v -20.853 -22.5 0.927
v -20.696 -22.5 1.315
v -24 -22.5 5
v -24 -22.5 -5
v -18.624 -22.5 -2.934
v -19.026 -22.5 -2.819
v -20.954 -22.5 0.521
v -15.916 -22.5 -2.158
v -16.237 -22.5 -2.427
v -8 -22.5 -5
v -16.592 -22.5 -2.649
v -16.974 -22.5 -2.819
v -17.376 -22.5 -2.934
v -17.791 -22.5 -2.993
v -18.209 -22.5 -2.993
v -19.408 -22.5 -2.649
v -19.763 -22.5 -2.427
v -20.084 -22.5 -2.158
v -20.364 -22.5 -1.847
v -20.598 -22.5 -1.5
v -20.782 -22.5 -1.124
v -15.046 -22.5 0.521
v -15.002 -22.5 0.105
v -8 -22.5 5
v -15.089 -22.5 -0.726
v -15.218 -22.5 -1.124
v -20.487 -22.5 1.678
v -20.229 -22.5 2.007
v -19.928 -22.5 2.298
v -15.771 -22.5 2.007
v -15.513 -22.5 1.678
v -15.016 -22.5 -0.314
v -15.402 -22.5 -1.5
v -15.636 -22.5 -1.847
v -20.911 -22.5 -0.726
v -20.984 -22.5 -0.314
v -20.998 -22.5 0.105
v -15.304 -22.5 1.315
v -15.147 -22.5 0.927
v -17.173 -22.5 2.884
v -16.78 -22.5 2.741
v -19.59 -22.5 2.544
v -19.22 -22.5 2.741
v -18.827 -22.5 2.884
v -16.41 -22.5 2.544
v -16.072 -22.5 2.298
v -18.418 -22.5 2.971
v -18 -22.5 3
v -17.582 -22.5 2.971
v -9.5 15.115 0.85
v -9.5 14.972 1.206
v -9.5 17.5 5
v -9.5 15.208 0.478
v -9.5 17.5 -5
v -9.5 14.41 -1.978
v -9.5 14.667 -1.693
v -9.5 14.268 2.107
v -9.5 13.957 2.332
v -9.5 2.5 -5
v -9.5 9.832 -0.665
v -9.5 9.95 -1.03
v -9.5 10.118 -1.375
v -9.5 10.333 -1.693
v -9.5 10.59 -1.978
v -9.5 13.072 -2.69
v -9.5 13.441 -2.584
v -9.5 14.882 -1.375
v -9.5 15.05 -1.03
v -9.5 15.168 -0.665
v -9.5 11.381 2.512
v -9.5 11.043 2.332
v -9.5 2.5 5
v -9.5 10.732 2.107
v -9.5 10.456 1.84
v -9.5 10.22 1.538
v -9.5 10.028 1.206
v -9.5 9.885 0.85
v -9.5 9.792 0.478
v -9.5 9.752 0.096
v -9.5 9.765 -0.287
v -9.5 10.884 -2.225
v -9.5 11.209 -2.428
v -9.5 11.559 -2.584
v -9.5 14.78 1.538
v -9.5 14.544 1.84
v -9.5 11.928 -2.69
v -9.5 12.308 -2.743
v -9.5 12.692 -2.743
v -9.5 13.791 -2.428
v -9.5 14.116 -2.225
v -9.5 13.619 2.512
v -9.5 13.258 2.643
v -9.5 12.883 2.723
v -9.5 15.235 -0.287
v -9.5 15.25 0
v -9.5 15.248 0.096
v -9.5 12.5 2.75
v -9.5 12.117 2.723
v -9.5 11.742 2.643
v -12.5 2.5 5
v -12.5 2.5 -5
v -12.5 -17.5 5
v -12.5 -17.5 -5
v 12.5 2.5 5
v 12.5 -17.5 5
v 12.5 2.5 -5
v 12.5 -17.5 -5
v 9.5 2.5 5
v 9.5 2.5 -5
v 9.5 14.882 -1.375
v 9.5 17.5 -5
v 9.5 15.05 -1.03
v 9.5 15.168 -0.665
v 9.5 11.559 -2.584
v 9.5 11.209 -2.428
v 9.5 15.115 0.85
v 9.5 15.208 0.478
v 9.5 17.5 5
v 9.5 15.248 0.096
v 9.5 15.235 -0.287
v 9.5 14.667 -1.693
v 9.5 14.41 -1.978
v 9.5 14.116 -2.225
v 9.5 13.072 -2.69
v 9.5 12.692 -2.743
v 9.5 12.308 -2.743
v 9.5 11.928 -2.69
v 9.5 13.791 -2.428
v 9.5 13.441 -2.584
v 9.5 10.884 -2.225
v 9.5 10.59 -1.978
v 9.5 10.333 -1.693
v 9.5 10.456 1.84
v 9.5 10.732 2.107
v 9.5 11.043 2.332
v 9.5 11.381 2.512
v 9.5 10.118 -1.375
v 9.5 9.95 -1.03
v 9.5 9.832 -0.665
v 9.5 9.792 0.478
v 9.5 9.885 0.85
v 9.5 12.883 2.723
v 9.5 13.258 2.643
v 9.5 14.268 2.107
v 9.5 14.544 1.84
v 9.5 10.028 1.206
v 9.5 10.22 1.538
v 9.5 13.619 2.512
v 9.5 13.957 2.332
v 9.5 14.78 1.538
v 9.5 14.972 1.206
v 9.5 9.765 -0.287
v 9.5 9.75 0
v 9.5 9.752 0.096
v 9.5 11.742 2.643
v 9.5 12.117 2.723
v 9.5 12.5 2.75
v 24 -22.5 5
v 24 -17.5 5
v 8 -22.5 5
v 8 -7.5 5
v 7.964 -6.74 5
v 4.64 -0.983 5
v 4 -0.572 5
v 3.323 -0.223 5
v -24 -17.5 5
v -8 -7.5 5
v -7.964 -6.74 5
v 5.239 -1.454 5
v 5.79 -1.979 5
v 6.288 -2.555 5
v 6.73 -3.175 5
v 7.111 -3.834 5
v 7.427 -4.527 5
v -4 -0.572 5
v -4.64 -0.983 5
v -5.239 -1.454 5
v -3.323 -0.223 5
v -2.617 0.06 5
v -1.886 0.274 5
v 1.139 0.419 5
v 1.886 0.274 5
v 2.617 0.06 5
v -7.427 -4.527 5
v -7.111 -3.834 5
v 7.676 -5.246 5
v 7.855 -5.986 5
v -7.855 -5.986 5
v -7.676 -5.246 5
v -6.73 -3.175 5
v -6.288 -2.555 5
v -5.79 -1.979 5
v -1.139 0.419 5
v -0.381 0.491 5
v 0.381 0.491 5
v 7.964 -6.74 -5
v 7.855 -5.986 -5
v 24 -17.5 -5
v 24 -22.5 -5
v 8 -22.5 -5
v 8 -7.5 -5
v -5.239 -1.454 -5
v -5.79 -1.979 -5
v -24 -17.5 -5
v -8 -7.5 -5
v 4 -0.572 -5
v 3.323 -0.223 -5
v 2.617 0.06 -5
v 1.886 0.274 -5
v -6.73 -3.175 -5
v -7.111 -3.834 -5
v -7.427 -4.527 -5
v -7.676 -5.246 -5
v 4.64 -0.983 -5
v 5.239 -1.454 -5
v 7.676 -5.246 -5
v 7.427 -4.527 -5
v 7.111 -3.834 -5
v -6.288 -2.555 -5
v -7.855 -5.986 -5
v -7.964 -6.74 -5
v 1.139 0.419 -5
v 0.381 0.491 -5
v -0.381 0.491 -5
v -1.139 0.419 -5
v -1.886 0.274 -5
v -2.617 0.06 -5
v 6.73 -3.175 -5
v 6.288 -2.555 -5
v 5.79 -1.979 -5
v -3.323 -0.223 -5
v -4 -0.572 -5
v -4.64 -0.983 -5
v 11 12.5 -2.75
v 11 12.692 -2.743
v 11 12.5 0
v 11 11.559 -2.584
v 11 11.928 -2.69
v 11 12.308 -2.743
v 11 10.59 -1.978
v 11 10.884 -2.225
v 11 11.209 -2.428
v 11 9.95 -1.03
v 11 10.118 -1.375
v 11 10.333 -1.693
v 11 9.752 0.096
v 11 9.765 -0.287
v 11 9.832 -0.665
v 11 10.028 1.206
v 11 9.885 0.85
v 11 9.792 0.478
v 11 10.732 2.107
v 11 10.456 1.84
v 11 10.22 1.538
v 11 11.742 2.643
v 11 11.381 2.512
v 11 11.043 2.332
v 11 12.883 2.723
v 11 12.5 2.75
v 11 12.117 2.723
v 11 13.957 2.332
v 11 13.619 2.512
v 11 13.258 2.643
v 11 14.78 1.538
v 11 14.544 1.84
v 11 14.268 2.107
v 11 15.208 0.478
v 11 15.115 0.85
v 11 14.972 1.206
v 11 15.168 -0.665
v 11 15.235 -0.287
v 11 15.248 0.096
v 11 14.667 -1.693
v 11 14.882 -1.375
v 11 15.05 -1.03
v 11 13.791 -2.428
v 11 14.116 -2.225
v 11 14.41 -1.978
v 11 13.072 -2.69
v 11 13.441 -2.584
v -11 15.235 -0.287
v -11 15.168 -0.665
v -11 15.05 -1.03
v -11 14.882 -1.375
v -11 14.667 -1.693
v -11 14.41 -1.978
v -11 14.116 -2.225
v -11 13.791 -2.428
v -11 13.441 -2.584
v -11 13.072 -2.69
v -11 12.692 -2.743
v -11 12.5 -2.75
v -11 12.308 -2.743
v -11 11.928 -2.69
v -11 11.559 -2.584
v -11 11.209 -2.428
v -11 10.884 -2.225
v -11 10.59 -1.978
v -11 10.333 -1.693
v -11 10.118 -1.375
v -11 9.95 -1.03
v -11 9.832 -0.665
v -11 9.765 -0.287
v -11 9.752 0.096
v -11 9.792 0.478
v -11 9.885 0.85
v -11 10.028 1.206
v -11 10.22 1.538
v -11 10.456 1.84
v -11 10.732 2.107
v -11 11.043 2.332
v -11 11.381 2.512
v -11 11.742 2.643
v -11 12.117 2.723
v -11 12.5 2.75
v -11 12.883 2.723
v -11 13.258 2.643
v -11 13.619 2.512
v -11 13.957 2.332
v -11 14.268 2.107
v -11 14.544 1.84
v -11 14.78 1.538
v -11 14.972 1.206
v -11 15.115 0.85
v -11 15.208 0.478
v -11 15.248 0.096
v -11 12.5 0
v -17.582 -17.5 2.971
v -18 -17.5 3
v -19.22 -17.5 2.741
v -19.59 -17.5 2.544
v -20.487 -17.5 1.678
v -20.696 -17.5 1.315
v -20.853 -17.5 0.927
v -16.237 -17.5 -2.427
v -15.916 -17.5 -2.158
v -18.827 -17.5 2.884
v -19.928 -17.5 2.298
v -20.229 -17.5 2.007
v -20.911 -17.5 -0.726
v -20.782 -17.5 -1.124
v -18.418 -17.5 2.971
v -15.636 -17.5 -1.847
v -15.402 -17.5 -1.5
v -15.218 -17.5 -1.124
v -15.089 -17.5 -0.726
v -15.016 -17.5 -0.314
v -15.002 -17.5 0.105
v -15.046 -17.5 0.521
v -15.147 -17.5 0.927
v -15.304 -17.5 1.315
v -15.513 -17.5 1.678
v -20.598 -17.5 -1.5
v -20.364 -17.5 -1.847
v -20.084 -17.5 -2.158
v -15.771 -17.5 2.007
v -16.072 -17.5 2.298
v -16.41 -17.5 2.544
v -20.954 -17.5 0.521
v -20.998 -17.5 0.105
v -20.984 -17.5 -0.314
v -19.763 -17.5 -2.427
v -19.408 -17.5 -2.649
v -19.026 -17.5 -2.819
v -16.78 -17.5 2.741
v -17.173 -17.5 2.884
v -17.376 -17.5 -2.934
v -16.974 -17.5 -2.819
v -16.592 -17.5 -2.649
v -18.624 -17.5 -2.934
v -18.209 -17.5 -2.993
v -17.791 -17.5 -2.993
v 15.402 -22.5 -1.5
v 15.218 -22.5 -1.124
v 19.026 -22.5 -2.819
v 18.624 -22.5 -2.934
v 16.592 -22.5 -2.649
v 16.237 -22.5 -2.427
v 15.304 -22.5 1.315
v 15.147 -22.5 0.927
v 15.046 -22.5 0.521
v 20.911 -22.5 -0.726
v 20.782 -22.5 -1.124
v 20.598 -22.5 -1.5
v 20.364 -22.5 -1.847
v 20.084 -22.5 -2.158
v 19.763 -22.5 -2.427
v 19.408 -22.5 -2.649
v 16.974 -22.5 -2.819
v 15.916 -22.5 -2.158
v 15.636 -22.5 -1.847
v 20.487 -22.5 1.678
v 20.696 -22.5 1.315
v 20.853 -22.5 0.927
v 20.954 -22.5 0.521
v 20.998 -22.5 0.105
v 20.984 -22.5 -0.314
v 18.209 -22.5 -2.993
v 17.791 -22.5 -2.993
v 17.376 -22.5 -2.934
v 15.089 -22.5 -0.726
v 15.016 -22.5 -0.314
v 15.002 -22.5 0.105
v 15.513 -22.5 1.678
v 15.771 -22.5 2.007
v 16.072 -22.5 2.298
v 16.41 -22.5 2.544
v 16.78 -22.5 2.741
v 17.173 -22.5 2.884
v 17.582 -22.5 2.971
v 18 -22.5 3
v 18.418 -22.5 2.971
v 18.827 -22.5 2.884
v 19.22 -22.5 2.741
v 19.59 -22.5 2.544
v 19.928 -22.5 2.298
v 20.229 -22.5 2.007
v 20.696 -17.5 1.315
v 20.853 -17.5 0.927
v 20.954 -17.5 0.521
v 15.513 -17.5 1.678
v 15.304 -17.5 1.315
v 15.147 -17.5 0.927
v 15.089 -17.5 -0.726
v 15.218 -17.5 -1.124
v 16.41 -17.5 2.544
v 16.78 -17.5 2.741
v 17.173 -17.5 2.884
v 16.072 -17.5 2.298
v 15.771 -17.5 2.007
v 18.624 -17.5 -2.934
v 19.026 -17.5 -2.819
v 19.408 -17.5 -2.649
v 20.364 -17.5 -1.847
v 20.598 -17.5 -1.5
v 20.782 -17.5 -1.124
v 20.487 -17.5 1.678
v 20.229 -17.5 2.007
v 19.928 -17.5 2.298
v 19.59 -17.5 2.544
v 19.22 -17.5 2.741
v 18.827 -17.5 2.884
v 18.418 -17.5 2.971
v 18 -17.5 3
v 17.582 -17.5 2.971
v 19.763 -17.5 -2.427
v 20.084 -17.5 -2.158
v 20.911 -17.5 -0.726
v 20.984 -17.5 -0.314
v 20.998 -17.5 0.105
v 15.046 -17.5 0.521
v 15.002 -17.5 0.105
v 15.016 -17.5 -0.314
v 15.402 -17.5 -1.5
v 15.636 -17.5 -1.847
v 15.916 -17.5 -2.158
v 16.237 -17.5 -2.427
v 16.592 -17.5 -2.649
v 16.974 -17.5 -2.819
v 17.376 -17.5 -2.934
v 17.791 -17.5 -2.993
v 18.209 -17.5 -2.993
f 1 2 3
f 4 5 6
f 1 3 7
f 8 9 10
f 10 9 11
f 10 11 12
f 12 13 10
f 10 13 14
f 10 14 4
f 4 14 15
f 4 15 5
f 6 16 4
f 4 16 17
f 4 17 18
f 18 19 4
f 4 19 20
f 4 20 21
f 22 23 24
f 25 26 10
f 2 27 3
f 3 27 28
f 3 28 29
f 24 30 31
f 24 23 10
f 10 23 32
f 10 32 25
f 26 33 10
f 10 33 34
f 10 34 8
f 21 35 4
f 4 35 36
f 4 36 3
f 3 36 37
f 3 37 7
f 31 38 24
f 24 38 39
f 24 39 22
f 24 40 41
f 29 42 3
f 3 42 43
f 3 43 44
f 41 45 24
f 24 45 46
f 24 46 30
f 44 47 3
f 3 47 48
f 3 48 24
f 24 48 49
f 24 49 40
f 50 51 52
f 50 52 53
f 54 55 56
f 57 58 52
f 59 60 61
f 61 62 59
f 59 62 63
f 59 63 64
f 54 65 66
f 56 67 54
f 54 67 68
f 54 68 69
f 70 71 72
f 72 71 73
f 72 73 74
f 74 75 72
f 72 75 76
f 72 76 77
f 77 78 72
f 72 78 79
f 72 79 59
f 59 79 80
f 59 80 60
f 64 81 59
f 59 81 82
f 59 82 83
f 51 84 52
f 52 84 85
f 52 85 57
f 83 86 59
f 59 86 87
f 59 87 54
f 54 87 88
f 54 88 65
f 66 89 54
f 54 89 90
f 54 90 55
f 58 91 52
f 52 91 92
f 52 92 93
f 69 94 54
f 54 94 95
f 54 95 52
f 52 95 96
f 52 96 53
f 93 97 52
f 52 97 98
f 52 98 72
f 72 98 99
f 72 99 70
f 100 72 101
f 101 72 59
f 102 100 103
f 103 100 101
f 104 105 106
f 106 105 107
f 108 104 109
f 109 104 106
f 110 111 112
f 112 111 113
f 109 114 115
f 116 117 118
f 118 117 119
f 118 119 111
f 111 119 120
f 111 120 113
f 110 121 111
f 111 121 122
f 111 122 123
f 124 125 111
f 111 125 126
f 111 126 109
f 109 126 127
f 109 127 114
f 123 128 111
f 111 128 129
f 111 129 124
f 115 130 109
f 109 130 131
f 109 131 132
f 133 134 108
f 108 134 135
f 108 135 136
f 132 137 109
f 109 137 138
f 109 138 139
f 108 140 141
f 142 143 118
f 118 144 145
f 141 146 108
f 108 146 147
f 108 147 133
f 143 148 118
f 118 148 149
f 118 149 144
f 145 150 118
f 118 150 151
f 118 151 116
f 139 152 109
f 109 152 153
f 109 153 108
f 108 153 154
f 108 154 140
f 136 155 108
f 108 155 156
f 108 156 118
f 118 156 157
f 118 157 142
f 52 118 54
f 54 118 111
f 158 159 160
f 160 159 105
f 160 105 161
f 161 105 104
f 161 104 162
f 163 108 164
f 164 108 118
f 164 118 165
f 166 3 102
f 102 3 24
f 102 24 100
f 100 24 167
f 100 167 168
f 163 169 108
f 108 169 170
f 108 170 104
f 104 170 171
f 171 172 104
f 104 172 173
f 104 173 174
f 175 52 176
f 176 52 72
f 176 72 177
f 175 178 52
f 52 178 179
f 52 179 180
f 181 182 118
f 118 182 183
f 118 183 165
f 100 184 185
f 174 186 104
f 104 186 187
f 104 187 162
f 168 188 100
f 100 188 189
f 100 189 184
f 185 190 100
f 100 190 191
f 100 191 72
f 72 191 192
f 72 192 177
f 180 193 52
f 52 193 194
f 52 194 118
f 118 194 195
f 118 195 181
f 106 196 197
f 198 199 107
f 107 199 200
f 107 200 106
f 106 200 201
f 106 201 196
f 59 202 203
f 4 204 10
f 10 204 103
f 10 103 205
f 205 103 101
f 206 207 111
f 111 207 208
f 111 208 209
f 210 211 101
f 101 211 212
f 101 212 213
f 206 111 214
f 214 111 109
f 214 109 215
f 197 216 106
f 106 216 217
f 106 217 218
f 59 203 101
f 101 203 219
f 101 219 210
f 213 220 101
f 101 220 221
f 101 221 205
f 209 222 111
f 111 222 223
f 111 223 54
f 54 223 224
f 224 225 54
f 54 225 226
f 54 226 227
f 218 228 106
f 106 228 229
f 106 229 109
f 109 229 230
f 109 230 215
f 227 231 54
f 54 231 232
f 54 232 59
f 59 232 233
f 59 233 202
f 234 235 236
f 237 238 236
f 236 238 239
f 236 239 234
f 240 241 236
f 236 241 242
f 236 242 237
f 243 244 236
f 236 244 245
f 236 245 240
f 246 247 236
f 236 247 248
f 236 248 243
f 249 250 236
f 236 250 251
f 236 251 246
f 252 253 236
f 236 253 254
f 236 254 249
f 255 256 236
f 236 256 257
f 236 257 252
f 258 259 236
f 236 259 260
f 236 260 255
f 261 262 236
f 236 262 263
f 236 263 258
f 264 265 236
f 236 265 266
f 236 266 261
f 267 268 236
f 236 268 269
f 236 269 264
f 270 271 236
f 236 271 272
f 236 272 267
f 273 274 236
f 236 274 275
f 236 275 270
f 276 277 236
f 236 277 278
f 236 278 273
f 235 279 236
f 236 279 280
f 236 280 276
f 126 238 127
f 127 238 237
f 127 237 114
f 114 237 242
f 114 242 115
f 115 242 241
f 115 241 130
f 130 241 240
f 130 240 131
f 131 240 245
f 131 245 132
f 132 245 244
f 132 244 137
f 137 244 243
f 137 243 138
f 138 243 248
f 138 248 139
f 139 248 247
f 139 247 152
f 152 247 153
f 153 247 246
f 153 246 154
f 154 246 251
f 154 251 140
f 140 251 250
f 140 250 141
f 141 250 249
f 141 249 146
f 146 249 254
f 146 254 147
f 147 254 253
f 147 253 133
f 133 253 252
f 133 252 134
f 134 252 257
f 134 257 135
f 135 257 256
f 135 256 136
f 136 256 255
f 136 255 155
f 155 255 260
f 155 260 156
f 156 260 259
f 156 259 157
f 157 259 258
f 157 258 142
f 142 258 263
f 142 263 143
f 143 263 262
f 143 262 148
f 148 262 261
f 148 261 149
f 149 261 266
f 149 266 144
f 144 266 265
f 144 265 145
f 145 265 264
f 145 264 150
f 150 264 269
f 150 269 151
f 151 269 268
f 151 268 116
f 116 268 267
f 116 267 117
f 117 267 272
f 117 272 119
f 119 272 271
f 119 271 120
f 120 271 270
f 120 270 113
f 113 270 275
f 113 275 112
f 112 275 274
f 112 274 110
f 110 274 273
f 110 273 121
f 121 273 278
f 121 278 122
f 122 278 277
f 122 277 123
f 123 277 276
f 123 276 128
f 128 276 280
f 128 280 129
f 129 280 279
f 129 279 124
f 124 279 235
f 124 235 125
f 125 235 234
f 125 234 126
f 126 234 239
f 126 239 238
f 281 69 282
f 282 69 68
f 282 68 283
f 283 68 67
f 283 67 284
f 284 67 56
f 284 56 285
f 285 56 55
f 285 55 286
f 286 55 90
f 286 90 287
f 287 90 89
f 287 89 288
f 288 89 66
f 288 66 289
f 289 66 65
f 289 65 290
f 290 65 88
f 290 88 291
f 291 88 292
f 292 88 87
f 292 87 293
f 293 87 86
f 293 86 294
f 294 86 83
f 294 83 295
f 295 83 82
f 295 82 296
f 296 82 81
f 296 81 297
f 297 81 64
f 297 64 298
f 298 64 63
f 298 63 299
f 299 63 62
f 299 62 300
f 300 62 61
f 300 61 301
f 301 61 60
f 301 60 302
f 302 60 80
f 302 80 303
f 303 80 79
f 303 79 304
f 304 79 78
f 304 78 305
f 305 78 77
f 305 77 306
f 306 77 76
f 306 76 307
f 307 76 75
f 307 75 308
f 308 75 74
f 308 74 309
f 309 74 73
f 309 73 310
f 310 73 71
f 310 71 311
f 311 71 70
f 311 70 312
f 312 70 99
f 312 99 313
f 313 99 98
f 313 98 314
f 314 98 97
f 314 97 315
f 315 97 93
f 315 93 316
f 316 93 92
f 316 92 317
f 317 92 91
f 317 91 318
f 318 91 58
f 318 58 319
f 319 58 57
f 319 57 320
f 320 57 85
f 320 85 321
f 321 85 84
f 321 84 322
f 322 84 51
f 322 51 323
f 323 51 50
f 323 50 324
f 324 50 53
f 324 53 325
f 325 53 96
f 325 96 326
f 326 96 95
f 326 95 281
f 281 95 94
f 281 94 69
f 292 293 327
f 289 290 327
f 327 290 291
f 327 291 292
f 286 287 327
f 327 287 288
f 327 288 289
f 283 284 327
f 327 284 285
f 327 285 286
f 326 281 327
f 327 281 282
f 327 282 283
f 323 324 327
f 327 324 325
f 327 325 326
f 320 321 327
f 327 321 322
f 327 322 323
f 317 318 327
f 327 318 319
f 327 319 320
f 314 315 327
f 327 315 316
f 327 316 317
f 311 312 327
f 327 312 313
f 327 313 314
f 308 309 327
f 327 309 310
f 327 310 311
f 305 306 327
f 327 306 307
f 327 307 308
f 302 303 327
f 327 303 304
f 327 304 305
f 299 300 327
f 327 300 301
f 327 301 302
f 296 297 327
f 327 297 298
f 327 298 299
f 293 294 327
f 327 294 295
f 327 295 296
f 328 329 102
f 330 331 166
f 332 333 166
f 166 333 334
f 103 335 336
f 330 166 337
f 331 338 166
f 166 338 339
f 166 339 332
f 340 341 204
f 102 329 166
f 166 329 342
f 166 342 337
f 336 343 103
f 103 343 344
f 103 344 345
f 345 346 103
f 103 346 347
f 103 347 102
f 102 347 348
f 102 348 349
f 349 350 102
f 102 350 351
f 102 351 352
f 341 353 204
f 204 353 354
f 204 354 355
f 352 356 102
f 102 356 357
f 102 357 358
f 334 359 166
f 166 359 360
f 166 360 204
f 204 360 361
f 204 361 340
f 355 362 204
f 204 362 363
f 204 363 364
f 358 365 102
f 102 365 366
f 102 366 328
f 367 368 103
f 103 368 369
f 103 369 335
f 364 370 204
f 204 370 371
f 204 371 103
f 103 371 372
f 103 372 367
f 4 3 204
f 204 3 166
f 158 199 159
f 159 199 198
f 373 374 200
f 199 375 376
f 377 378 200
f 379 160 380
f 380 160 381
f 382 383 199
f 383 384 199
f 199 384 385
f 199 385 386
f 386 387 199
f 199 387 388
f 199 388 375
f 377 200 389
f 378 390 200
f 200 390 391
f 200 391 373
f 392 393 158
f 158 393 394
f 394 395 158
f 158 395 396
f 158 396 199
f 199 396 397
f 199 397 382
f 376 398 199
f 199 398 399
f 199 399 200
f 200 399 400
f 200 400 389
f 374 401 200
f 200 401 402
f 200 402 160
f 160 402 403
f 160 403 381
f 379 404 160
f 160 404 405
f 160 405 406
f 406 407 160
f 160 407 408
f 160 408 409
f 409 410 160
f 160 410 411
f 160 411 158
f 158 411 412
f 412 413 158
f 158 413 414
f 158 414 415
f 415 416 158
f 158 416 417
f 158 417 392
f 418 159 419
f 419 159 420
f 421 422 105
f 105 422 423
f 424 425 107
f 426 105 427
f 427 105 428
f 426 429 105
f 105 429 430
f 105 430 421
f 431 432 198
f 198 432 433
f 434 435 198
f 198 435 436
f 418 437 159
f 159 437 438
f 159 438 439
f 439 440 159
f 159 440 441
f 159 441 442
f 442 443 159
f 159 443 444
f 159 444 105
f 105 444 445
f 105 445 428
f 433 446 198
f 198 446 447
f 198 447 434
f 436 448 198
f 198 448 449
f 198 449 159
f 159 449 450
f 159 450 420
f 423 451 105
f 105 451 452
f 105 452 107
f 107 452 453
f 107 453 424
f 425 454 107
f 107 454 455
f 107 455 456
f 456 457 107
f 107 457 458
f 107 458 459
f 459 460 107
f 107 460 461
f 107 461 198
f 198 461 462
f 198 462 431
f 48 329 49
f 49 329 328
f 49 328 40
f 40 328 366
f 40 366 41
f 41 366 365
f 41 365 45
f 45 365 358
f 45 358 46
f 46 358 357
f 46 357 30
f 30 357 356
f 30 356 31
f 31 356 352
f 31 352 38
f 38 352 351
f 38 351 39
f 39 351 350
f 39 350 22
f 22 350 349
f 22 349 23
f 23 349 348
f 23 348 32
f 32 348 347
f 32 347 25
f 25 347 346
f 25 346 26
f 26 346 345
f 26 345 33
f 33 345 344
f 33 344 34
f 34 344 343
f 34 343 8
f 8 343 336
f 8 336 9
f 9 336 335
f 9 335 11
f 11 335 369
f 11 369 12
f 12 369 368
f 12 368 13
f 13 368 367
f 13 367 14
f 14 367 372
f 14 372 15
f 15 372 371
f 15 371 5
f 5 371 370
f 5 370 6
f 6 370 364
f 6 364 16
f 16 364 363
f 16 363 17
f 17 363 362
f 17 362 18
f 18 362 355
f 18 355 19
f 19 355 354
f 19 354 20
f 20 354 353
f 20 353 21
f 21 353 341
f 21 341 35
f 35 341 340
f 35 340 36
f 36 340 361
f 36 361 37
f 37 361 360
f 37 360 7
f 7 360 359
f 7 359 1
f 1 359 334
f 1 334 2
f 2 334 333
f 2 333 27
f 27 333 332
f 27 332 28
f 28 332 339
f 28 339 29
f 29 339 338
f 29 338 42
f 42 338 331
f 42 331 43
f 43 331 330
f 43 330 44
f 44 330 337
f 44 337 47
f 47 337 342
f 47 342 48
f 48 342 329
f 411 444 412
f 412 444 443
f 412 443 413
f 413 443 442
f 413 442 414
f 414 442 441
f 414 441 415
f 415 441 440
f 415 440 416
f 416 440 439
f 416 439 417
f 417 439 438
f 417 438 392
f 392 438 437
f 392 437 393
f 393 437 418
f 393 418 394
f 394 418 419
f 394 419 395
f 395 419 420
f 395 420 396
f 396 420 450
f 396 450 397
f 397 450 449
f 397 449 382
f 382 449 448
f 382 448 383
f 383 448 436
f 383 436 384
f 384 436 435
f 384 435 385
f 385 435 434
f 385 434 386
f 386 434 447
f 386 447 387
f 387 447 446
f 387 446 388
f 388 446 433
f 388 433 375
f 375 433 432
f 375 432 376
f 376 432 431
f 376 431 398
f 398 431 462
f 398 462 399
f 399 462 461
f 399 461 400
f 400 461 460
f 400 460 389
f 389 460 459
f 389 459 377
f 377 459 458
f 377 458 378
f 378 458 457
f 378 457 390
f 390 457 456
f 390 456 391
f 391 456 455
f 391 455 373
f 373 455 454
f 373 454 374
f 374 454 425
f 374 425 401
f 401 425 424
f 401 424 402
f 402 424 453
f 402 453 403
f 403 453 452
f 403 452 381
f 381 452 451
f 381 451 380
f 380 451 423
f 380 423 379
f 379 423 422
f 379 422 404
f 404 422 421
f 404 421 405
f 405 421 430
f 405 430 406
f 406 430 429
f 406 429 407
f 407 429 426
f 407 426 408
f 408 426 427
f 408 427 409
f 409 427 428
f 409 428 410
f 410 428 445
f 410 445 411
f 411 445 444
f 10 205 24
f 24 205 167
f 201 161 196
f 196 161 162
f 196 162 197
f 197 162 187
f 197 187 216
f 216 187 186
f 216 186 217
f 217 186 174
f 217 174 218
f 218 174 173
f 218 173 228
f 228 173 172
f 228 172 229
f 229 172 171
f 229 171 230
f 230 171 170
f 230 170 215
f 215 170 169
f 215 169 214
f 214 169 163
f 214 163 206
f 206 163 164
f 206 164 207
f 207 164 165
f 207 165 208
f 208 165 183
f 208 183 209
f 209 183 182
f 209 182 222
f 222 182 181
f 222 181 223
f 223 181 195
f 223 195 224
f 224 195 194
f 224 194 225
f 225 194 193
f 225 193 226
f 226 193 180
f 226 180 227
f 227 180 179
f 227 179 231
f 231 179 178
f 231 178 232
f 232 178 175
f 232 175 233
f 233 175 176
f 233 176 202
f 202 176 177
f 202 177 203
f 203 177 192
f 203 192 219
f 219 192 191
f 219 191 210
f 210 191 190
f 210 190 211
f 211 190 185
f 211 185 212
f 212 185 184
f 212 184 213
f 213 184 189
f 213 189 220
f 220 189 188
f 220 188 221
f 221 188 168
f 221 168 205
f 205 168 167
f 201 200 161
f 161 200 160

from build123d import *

# Parameters (mm, degrees)
BOSS_EXTRUDE1_DEPTH = 5
SKETCH4_R           = 2.75
BOSS_EXTRUDE3_DEPTH = 11
SKETCH6_W           = 48
SKETCH6_H           = 10
BOSS_EXTRUDE4_DEPTH = 5
SKETCH7_R           = 3
CUT_EXTRUDE2_DEPTH  = 6
CUT_EXTRUDE3_DEPTH  = 11


with BuildPart() as part:
    # Sketch1 → Boss-Extrude1 (new body, symmetric)
    with BuildSketch(Plane.XY):
        Polygon((-9.5, 17.5), (9.5, 17.5), (9.5, 2.5), (12.5, 2.5), (12.5, -17.5), (-12.5, -17.5), (-12.5, 2.5), (-9.5, 2.5), align=None)
    extrude(amount=BOSS_EXTRUDE1_DEPTH, both=True)

    # Sketch4 → Boss-Extrude3 (add, symmetric)
    with BuildSketch(Plane(origin=(0, 0, 0), x_dir=(0, 0, -1), z_dir=(1, 0, 0))):
        with Locations((0, 12.5)):
            Circle(SKETCH4_R)
    extrude(amount=BOSS_EXTRUDE3_DEPTH, both=True)

    # Sketch6 → Boss-Extrude4 (add)
    with BuildSketch(Plane.XZ.offset(17.5)):
        Rectangle(SKETCH6_W, SKETCH6_H)
    extrude(amount=BOSS_EXTRUDE4_DEPTH)

    # Sketch7 → Cut-Extrude2 (cut, through all)
    with BuildSketch(Plane(origin=(0, -17.5, 0), x_dir=(1, 0, 0), z_dir=(0, 1, 0))):
        with Locations((-18, 0)):
            Circle(SKETCH7_R)
        with Locations((18, 0)):
            Circle(SKETCH7_R)
    extrude(amount=-CUT_EXTRUDE2_DEPTH, mode=Mode.SUBTRACT)

    # Sketch8 → Cut-Extrude3 (cut, through all)
    with BuildSketch(Plane.XY.offset(5)):
        with BuildLine():
            Line((-8, -22.5), (-8, -7.5))
            ThreePointArc((-8, -7.5), (0, 0.5), (8, -7.5))
            Line((8, -7.5), (8, -22.5))
            ThreePointArc((8, -22.5), (0, -30.5), (-8, -22.5))
        make_face()
    extrude(amount=-CUT_EXTRUDE3_DEPTH, mode=Mode.SUBTRACT)


solid = part.part
